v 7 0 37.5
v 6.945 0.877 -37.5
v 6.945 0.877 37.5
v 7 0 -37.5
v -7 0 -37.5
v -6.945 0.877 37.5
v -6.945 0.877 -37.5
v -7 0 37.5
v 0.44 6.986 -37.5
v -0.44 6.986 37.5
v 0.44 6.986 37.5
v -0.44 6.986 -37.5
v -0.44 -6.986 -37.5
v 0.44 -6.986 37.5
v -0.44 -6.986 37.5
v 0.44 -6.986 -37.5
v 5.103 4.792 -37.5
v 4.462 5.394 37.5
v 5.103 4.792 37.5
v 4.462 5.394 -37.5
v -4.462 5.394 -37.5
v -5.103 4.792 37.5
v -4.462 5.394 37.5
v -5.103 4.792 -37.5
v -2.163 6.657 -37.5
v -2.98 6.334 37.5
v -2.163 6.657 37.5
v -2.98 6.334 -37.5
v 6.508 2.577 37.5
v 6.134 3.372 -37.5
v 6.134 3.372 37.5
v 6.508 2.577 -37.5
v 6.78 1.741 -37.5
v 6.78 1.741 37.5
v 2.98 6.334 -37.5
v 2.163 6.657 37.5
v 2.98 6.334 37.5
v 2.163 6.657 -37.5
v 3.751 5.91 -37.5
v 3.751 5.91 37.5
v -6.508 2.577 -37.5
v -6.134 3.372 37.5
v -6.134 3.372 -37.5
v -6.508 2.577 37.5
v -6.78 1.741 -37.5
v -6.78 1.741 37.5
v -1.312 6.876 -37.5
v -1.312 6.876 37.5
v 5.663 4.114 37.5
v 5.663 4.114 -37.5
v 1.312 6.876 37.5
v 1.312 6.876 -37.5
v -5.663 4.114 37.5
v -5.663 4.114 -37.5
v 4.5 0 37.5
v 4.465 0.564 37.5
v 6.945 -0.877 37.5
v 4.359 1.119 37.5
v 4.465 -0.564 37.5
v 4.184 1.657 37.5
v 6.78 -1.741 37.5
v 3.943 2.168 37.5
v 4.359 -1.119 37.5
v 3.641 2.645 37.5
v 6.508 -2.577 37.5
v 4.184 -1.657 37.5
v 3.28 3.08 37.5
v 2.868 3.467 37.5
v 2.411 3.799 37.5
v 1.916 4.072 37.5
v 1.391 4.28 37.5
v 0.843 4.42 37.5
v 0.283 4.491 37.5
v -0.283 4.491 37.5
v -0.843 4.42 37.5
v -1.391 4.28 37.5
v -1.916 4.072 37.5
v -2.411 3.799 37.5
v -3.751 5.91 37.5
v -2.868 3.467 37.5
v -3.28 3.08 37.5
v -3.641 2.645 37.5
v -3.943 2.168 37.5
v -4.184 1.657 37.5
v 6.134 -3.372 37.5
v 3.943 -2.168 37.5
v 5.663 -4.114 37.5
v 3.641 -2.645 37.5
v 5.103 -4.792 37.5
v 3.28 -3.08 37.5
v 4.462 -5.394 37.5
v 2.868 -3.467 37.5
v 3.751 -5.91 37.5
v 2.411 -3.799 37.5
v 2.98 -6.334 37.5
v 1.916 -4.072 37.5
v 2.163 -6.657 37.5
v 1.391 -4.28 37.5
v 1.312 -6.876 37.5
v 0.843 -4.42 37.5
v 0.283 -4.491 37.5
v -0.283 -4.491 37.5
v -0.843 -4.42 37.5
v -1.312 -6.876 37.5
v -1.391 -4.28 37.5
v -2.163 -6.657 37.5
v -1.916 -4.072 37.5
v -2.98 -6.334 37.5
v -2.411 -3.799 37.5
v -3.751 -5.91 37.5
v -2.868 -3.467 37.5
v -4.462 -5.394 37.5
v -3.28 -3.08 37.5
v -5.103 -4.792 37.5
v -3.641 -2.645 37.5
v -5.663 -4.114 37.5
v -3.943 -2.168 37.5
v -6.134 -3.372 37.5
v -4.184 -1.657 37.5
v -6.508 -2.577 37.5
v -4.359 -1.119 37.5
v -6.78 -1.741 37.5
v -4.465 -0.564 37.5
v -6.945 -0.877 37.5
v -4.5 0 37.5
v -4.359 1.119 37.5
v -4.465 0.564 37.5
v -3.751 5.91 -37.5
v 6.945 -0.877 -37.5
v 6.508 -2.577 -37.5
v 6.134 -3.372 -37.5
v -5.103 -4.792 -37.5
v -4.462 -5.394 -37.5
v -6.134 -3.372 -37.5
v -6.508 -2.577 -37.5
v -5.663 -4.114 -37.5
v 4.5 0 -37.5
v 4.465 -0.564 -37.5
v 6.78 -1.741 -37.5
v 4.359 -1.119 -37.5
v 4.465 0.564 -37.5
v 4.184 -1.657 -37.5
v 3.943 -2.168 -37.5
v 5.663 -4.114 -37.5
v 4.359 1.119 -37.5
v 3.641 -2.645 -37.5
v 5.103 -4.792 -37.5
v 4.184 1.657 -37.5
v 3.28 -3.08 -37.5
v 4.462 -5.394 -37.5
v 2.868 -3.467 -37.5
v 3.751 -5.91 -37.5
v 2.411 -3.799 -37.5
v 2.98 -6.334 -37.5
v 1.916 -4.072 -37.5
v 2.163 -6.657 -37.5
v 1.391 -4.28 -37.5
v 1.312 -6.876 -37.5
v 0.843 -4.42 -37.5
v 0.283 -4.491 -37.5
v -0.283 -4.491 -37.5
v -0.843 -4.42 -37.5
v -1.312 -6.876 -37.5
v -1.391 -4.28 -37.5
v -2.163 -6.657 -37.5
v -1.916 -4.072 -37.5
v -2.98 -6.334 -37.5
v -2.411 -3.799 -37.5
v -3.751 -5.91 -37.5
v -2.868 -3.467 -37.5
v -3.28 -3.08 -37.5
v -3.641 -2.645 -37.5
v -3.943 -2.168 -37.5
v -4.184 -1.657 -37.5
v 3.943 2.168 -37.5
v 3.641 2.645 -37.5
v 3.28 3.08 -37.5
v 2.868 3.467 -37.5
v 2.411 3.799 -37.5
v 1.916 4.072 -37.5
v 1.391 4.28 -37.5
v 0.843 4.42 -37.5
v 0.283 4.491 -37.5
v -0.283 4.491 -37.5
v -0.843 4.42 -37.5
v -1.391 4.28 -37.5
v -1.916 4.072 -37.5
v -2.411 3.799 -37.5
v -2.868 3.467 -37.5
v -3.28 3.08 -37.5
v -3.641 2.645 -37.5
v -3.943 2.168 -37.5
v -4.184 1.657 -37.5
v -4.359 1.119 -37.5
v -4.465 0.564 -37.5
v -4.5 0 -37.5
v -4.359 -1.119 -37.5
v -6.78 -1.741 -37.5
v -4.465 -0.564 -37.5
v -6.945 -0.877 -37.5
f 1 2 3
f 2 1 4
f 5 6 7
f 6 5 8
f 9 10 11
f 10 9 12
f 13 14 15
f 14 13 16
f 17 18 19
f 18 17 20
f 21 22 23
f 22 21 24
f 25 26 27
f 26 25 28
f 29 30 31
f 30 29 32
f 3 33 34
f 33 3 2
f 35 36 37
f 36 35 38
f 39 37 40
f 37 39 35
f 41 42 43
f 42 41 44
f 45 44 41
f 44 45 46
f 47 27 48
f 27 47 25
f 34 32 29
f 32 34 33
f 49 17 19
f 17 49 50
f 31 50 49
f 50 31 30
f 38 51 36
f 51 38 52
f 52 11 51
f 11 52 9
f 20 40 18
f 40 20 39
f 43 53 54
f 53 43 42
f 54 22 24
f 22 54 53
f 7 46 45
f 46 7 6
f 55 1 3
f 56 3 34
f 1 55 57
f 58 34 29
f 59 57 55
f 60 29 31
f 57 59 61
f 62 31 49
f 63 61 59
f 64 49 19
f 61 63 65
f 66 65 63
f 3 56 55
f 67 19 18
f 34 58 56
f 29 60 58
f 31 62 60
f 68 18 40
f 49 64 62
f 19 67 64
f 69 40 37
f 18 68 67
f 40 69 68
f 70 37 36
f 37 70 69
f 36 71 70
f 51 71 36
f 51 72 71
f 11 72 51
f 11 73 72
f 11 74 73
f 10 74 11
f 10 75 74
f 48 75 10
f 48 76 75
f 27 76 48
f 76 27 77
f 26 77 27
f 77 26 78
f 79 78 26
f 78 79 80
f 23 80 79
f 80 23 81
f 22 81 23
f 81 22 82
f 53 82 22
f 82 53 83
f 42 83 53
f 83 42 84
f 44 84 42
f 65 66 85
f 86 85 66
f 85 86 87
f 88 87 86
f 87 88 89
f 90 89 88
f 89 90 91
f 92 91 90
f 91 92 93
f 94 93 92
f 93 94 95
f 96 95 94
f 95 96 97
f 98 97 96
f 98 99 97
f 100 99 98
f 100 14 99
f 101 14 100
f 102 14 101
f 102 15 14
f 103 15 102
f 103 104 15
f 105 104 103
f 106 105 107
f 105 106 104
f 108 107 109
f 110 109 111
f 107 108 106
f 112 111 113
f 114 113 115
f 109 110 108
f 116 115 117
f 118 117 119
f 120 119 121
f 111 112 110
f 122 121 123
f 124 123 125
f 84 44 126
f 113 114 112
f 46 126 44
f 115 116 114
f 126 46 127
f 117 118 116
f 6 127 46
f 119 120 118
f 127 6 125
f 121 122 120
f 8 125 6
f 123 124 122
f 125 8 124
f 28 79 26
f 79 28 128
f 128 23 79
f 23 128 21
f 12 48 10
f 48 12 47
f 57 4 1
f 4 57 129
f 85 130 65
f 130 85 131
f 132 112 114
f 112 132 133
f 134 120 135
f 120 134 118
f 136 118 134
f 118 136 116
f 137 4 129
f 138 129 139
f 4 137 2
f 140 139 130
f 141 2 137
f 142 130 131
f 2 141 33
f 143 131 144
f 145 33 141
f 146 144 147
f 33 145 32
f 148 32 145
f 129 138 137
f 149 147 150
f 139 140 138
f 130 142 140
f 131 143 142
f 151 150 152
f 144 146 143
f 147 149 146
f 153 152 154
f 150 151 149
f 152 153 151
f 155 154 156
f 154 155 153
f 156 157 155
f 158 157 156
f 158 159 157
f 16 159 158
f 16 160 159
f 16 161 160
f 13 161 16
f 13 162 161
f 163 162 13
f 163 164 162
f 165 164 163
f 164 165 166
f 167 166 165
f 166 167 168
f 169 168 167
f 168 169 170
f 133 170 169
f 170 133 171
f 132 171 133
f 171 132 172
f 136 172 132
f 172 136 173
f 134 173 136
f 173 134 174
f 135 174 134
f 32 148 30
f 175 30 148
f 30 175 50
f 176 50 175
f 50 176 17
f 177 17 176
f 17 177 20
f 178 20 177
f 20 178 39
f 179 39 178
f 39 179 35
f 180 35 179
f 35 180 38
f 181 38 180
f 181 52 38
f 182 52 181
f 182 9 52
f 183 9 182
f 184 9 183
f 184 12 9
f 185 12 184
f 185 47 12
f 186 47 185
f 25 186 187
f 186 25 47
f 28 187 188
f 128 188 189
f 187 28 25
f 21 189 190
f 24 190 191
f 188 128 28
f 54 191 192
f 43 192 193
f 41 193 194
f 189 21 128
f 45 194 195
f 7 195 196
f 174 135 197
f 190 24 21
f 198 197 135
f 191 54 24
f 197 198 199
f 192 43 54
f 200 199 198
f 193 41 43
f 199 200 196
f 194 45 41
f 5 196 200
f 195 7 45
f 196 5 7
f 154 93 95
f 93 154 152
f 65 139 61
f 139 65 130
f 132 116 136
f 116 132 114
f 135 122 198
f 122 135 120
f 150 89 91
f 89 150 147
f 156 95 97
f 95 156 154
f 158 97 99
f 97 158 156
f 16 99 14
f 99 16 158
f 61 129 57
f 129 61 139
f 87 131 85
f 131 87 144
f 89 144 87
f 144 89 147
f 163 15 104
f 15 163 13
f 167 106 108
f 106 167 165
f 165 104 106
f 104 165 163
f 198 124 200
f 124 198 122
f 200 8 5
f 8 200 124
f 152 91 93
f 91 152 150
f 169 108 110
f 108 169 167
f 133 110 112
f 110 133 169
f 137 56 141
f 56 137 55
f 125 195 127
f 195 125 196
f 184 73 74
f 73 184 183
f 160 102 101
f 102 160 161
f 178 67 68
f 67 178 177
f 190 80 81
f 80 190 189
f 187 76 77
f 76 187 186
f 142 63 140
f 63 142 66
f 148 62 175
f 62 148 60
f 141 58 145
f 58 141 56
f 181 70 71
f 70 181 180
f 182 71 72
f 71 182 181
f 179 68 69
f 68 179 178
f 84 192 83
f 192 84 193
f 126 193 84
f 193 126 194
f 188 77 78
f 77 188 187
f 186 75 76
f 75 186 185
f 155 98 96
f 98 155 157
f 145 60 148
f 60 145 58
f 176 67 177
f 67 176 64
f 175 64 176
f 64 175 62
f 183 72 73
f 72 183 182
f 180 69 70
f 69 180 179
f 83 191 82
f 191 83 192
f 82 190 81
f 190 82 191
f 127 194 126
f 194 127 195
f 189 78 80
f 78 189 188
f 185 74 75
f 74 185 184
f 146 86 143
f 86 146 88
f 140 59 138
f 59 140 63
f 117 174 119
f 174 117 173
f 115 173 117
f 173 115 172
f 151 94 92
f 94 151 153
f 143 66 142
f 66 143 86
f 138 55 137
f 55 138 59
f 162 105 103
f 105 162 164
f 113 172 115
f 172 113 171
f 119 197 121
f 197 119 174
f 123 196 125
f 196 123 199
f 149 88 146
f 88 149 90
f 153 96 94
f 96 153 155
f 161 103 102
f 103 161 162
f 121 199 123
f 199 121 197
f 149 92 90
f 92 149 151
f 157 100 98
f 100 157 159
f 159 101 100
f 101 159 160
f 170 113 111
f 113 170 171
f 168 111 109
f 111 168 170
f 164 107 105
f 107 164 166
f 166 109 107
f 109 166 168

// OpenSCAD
$fn = 50;


difference() {
	union() {
		translate(v = [0, 0, -37.5000000000]) {
			cylinder(h = 75, r = 7.0000000000);
		}
	}
	union() {
		translate(v = [0, 0, -100.0000000000]) {
			cylinder(h = 200, r = 4.5000000000);
		}
	}
}
